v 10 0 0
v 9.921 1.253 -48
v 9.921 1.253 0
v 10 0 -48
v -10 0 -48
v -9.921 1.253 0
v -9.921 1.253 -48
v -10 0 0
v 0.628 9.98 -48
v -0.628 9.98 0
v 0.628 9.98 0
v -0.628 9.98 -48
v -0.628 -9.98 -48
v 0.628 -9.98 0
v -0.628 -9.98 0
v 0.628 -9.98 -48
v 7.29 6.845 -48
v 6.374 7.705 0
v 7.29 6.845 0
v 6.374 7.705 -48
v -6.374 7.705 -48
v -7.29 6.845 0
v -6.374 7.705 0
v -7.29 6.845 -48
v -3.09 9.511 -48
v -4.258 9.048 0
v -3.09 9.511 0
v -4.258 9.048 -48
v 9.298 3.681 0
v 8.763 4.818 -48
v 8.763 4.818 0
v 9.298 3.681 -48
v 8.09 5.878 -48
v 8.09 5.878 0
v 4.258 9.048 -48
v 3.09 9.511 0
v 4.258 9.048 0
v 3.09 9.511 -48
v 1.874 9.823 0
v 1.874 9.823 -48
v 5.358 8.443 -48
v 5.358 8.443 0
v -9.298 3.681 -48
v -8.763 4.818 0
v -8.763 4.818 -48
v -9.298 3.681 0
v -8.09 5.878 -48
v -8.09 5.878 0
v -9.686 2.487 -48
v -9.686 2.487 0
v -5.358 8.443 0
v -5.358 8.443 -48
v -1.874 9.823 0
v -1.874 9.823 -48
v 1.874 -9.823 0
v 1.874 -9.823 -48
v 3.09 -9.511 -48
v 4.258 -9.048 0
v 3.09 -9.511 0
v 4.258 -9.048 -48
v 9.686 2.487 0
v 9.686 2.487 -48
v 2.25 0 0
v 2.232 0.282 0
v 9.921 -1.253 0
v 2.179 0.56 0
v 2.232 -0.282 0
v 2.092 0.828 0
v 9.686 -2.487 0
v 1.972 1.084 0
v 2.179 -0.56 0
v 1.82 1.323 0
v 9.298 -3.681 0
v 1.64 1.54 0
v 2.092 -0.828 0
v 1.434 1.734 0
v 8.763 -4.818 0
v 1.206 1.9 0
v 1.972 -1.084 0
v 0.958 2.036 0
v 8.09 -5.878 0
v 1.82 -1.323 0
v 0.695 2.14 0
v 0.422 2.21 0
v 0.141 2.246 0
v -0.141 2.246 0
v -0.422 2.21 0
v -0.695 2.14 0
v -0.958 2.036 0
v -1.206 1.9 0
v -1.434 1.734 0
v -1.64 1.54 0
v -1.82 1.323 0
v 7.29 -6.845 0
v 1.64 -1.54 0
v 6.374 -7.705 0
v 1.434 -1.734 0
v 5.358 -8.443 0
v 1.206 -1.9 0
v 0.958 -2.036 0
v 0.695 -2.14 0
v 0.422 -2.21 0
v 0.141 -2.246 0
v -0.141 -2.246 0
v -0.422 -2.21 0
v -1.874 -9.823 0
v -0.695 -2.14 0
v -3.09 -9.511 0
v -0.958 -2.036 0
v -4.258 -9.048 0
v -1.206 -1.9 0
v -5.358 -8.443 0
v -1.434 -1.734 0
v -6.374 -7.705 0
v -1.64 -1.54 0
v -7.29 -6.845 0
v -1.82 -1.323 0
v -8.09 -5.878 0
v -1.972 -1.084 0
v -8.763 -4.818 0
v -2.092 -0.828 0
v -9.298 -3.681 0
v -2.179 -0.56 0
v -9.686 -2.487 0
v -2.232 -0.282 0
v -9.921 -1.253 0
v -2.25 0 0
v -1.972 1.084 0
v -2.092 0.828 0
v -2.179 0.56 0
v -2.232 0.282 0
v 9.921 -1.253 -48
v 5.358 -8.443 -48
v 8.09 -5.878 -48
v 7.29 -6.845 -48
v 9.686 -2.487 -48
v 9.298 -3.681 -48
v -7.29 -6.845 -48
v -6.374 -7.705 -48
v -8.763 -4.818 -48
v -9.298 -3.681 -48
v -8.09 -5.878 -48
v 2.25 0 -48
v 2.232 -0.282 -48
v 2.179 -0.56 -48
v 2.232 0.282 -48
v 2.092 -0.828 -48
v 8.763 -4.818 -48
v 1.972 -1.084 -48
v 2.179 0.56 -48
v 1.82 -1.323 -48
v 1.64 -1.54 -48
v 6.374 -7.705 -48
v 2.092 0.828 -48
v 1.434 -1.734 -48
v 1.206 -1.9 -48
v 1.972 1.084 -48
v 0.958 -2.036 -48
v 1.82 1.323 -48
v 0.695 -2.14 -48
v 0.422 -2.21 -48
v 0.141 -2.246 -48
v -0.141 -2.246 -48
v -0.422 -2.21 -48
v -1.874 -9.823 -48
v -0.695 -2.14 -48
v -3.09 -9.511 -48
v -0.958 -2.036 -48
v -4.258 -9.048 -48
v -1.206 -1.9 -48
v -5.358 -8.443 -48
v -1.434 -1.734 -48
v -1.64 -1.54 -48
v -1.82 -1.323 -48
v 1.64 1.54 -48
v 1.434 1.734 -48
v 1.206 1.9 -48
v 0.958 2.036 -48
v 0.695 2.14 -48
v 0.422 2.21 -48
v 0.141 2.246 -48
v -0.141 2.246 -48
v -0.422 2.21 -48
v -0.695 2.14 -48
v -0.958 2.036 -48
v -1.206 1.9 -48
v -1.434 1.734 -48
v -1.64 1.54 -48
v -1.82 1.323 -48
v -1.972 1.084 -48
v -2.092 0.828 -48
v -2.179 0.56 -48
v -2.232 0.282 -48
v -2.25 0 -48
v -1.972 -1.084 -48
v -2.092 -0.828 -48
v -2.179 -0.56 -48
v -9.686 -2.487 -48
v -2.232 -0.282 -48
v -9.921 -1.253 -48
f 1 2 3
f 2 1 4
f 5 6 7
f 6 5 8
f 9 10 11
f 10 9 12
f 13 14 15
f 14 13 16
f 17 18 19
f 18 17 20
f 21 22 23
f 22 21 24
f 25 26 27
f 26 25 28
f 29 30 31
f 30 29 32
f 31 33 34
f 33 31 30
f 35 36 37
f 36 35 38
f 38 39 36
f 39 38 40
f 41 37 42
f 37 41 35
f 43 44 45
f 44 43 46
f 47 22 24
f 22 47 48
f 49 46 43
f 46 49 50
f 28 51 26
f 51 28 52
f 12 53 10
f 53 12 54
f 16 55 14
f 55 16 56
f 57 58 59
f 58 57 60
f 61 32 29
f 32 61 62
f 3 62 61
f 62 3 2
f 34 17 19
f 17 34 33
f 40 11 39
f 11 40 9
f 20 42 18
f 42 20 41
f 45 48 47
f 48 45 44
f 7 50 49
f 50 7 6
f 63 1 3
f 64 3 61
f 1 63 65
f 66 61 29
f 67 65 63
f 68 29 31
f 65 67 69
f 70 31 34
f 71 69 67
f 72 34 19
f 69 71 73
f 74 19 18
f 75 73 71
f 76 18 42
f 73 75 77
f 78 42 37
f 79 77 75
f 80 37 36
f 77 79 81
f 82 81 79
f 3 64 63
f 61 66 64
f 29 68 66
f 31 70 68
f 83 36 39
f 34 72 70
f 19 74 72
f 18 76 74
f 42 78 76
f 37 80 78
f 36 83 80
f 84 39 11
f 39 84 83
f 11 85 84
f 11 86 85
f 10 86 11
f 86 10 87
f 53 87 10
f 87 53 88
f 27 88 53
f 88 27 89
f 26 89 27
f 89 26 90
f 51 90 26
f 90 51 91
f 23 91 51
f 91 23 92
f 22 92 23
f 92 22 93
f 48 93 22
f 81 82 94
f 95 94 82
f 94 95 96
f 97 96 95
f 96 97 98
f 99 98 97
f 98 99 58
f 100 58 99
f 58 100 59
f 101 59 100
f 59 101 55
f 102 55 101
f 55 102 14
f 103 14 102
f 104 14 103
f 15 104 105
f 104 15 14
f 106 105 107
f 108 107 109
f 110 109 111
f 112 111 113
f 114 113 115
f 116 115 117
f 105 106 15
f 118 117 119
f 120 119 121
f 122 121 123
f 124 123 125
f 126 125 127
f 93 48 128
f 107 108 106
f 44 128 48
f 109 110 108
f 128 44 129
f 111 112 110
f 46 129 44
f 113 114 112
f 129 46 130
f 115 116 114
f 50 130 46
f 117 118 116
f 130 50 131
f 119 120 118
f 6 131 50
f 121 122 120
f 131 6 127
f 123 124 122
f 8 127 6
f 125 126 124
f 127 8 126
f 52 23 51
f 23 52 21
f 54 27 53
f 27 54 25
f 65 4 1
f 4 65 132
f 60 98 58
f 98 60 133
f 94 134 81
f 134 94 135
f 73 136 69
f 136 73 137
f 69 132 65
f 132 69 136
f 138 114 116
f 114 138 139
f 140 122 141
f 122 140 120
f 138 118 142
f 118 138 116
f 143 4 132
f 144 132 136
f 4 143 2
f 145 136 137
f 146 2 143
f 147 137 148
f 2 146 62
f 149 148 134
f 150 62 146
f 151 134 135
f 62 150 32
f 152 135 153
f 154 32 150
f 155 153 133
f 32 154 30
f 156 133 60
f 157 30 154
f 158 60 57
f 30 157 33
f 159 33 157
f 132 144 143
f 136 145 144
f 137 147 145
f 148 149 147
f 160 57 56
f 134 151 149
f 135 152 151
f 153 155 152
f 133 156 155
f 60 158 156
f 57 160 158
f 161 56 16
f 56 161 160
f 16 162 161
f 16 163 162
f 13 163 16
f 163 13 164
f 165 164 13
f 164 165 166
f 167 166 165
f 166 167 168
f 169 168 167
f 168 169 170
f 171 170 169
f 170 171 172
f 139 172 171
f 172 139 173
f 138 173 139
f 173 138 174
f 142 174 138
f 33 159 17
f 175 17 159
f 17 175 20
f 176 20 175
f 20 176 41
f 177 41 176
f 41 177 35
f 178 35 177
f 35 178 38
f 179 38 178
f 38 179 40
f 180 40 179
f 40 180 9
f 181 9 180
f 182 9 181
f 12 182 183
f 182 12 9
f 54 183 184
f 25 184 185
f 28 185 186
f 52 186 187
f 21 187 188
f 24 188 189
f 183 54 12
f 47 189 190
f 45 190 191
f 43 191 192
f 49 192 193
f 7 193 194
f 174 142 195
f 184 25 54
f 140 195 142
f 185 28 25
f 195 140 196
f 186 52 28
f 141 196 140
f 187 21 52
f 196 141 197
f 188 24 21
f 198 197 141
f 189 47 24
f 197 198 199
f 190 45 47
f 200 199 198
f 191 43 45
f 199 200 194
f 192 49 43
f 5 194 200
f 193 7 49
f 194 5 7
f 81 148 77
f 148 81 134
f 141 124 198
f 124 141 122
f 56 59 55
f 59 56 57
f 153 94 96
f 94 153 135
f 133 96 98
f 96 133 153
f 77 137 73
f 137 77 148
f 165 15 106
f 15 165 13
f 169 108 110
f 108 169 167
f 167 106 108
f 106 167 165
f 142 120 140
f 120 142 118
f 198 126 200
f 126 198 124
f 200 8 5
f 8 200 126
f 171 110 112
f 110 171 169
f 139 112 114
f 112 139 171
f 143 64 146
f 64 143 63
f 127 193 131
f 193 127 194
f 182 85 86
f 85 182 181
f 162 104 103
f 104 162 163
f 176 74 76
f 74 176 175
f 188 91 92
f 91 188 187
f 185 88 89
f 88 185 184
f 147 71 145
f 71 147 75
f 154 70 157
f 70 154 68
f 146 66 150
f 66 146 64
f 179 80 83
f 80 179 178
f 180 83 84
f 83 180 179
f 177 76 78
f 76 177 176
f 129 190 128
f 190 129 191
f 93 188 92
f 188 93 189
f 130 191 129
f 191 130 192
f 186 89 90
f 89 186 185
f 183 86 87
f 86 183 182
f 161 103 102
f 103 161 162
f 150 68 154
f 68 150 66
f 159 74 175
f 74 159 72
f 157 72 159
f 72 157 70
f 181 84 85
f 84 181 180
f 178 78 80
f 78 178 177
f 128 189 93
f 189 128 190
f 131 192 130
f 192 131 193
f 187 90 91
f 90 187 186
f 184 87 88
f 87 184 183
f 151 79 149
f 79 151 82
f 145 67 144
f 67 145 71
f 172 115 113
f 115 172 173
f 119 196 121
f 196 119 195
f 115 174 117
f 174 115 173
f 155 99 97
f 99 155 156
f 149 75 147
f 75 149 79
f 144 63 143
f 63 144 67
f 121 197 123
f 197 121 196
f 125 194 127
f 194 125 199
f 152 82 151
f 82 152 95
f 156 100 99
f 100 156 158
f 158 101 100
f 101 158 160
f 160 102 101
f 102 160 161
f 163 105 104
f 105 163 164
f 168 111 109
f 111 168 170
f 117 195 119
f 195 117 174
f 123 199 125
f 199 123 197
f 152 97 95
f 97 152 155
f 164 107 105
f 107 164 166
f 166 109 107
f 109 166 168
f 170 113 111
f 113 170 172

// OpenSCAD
$fn = 50;


difference() {
	union() {
		translate(v = [0, 0, -48.0000000000]) {
			cylinder(h = 48, r = 10.0000000000);
		}
		cylinder(h = 0, r = 20.0000000000);
	}
	union() {
		#translate(v = [0, 0, -48]) {
			cylinder(h = 48, r = 2.2500000000);
		}
	}
}
